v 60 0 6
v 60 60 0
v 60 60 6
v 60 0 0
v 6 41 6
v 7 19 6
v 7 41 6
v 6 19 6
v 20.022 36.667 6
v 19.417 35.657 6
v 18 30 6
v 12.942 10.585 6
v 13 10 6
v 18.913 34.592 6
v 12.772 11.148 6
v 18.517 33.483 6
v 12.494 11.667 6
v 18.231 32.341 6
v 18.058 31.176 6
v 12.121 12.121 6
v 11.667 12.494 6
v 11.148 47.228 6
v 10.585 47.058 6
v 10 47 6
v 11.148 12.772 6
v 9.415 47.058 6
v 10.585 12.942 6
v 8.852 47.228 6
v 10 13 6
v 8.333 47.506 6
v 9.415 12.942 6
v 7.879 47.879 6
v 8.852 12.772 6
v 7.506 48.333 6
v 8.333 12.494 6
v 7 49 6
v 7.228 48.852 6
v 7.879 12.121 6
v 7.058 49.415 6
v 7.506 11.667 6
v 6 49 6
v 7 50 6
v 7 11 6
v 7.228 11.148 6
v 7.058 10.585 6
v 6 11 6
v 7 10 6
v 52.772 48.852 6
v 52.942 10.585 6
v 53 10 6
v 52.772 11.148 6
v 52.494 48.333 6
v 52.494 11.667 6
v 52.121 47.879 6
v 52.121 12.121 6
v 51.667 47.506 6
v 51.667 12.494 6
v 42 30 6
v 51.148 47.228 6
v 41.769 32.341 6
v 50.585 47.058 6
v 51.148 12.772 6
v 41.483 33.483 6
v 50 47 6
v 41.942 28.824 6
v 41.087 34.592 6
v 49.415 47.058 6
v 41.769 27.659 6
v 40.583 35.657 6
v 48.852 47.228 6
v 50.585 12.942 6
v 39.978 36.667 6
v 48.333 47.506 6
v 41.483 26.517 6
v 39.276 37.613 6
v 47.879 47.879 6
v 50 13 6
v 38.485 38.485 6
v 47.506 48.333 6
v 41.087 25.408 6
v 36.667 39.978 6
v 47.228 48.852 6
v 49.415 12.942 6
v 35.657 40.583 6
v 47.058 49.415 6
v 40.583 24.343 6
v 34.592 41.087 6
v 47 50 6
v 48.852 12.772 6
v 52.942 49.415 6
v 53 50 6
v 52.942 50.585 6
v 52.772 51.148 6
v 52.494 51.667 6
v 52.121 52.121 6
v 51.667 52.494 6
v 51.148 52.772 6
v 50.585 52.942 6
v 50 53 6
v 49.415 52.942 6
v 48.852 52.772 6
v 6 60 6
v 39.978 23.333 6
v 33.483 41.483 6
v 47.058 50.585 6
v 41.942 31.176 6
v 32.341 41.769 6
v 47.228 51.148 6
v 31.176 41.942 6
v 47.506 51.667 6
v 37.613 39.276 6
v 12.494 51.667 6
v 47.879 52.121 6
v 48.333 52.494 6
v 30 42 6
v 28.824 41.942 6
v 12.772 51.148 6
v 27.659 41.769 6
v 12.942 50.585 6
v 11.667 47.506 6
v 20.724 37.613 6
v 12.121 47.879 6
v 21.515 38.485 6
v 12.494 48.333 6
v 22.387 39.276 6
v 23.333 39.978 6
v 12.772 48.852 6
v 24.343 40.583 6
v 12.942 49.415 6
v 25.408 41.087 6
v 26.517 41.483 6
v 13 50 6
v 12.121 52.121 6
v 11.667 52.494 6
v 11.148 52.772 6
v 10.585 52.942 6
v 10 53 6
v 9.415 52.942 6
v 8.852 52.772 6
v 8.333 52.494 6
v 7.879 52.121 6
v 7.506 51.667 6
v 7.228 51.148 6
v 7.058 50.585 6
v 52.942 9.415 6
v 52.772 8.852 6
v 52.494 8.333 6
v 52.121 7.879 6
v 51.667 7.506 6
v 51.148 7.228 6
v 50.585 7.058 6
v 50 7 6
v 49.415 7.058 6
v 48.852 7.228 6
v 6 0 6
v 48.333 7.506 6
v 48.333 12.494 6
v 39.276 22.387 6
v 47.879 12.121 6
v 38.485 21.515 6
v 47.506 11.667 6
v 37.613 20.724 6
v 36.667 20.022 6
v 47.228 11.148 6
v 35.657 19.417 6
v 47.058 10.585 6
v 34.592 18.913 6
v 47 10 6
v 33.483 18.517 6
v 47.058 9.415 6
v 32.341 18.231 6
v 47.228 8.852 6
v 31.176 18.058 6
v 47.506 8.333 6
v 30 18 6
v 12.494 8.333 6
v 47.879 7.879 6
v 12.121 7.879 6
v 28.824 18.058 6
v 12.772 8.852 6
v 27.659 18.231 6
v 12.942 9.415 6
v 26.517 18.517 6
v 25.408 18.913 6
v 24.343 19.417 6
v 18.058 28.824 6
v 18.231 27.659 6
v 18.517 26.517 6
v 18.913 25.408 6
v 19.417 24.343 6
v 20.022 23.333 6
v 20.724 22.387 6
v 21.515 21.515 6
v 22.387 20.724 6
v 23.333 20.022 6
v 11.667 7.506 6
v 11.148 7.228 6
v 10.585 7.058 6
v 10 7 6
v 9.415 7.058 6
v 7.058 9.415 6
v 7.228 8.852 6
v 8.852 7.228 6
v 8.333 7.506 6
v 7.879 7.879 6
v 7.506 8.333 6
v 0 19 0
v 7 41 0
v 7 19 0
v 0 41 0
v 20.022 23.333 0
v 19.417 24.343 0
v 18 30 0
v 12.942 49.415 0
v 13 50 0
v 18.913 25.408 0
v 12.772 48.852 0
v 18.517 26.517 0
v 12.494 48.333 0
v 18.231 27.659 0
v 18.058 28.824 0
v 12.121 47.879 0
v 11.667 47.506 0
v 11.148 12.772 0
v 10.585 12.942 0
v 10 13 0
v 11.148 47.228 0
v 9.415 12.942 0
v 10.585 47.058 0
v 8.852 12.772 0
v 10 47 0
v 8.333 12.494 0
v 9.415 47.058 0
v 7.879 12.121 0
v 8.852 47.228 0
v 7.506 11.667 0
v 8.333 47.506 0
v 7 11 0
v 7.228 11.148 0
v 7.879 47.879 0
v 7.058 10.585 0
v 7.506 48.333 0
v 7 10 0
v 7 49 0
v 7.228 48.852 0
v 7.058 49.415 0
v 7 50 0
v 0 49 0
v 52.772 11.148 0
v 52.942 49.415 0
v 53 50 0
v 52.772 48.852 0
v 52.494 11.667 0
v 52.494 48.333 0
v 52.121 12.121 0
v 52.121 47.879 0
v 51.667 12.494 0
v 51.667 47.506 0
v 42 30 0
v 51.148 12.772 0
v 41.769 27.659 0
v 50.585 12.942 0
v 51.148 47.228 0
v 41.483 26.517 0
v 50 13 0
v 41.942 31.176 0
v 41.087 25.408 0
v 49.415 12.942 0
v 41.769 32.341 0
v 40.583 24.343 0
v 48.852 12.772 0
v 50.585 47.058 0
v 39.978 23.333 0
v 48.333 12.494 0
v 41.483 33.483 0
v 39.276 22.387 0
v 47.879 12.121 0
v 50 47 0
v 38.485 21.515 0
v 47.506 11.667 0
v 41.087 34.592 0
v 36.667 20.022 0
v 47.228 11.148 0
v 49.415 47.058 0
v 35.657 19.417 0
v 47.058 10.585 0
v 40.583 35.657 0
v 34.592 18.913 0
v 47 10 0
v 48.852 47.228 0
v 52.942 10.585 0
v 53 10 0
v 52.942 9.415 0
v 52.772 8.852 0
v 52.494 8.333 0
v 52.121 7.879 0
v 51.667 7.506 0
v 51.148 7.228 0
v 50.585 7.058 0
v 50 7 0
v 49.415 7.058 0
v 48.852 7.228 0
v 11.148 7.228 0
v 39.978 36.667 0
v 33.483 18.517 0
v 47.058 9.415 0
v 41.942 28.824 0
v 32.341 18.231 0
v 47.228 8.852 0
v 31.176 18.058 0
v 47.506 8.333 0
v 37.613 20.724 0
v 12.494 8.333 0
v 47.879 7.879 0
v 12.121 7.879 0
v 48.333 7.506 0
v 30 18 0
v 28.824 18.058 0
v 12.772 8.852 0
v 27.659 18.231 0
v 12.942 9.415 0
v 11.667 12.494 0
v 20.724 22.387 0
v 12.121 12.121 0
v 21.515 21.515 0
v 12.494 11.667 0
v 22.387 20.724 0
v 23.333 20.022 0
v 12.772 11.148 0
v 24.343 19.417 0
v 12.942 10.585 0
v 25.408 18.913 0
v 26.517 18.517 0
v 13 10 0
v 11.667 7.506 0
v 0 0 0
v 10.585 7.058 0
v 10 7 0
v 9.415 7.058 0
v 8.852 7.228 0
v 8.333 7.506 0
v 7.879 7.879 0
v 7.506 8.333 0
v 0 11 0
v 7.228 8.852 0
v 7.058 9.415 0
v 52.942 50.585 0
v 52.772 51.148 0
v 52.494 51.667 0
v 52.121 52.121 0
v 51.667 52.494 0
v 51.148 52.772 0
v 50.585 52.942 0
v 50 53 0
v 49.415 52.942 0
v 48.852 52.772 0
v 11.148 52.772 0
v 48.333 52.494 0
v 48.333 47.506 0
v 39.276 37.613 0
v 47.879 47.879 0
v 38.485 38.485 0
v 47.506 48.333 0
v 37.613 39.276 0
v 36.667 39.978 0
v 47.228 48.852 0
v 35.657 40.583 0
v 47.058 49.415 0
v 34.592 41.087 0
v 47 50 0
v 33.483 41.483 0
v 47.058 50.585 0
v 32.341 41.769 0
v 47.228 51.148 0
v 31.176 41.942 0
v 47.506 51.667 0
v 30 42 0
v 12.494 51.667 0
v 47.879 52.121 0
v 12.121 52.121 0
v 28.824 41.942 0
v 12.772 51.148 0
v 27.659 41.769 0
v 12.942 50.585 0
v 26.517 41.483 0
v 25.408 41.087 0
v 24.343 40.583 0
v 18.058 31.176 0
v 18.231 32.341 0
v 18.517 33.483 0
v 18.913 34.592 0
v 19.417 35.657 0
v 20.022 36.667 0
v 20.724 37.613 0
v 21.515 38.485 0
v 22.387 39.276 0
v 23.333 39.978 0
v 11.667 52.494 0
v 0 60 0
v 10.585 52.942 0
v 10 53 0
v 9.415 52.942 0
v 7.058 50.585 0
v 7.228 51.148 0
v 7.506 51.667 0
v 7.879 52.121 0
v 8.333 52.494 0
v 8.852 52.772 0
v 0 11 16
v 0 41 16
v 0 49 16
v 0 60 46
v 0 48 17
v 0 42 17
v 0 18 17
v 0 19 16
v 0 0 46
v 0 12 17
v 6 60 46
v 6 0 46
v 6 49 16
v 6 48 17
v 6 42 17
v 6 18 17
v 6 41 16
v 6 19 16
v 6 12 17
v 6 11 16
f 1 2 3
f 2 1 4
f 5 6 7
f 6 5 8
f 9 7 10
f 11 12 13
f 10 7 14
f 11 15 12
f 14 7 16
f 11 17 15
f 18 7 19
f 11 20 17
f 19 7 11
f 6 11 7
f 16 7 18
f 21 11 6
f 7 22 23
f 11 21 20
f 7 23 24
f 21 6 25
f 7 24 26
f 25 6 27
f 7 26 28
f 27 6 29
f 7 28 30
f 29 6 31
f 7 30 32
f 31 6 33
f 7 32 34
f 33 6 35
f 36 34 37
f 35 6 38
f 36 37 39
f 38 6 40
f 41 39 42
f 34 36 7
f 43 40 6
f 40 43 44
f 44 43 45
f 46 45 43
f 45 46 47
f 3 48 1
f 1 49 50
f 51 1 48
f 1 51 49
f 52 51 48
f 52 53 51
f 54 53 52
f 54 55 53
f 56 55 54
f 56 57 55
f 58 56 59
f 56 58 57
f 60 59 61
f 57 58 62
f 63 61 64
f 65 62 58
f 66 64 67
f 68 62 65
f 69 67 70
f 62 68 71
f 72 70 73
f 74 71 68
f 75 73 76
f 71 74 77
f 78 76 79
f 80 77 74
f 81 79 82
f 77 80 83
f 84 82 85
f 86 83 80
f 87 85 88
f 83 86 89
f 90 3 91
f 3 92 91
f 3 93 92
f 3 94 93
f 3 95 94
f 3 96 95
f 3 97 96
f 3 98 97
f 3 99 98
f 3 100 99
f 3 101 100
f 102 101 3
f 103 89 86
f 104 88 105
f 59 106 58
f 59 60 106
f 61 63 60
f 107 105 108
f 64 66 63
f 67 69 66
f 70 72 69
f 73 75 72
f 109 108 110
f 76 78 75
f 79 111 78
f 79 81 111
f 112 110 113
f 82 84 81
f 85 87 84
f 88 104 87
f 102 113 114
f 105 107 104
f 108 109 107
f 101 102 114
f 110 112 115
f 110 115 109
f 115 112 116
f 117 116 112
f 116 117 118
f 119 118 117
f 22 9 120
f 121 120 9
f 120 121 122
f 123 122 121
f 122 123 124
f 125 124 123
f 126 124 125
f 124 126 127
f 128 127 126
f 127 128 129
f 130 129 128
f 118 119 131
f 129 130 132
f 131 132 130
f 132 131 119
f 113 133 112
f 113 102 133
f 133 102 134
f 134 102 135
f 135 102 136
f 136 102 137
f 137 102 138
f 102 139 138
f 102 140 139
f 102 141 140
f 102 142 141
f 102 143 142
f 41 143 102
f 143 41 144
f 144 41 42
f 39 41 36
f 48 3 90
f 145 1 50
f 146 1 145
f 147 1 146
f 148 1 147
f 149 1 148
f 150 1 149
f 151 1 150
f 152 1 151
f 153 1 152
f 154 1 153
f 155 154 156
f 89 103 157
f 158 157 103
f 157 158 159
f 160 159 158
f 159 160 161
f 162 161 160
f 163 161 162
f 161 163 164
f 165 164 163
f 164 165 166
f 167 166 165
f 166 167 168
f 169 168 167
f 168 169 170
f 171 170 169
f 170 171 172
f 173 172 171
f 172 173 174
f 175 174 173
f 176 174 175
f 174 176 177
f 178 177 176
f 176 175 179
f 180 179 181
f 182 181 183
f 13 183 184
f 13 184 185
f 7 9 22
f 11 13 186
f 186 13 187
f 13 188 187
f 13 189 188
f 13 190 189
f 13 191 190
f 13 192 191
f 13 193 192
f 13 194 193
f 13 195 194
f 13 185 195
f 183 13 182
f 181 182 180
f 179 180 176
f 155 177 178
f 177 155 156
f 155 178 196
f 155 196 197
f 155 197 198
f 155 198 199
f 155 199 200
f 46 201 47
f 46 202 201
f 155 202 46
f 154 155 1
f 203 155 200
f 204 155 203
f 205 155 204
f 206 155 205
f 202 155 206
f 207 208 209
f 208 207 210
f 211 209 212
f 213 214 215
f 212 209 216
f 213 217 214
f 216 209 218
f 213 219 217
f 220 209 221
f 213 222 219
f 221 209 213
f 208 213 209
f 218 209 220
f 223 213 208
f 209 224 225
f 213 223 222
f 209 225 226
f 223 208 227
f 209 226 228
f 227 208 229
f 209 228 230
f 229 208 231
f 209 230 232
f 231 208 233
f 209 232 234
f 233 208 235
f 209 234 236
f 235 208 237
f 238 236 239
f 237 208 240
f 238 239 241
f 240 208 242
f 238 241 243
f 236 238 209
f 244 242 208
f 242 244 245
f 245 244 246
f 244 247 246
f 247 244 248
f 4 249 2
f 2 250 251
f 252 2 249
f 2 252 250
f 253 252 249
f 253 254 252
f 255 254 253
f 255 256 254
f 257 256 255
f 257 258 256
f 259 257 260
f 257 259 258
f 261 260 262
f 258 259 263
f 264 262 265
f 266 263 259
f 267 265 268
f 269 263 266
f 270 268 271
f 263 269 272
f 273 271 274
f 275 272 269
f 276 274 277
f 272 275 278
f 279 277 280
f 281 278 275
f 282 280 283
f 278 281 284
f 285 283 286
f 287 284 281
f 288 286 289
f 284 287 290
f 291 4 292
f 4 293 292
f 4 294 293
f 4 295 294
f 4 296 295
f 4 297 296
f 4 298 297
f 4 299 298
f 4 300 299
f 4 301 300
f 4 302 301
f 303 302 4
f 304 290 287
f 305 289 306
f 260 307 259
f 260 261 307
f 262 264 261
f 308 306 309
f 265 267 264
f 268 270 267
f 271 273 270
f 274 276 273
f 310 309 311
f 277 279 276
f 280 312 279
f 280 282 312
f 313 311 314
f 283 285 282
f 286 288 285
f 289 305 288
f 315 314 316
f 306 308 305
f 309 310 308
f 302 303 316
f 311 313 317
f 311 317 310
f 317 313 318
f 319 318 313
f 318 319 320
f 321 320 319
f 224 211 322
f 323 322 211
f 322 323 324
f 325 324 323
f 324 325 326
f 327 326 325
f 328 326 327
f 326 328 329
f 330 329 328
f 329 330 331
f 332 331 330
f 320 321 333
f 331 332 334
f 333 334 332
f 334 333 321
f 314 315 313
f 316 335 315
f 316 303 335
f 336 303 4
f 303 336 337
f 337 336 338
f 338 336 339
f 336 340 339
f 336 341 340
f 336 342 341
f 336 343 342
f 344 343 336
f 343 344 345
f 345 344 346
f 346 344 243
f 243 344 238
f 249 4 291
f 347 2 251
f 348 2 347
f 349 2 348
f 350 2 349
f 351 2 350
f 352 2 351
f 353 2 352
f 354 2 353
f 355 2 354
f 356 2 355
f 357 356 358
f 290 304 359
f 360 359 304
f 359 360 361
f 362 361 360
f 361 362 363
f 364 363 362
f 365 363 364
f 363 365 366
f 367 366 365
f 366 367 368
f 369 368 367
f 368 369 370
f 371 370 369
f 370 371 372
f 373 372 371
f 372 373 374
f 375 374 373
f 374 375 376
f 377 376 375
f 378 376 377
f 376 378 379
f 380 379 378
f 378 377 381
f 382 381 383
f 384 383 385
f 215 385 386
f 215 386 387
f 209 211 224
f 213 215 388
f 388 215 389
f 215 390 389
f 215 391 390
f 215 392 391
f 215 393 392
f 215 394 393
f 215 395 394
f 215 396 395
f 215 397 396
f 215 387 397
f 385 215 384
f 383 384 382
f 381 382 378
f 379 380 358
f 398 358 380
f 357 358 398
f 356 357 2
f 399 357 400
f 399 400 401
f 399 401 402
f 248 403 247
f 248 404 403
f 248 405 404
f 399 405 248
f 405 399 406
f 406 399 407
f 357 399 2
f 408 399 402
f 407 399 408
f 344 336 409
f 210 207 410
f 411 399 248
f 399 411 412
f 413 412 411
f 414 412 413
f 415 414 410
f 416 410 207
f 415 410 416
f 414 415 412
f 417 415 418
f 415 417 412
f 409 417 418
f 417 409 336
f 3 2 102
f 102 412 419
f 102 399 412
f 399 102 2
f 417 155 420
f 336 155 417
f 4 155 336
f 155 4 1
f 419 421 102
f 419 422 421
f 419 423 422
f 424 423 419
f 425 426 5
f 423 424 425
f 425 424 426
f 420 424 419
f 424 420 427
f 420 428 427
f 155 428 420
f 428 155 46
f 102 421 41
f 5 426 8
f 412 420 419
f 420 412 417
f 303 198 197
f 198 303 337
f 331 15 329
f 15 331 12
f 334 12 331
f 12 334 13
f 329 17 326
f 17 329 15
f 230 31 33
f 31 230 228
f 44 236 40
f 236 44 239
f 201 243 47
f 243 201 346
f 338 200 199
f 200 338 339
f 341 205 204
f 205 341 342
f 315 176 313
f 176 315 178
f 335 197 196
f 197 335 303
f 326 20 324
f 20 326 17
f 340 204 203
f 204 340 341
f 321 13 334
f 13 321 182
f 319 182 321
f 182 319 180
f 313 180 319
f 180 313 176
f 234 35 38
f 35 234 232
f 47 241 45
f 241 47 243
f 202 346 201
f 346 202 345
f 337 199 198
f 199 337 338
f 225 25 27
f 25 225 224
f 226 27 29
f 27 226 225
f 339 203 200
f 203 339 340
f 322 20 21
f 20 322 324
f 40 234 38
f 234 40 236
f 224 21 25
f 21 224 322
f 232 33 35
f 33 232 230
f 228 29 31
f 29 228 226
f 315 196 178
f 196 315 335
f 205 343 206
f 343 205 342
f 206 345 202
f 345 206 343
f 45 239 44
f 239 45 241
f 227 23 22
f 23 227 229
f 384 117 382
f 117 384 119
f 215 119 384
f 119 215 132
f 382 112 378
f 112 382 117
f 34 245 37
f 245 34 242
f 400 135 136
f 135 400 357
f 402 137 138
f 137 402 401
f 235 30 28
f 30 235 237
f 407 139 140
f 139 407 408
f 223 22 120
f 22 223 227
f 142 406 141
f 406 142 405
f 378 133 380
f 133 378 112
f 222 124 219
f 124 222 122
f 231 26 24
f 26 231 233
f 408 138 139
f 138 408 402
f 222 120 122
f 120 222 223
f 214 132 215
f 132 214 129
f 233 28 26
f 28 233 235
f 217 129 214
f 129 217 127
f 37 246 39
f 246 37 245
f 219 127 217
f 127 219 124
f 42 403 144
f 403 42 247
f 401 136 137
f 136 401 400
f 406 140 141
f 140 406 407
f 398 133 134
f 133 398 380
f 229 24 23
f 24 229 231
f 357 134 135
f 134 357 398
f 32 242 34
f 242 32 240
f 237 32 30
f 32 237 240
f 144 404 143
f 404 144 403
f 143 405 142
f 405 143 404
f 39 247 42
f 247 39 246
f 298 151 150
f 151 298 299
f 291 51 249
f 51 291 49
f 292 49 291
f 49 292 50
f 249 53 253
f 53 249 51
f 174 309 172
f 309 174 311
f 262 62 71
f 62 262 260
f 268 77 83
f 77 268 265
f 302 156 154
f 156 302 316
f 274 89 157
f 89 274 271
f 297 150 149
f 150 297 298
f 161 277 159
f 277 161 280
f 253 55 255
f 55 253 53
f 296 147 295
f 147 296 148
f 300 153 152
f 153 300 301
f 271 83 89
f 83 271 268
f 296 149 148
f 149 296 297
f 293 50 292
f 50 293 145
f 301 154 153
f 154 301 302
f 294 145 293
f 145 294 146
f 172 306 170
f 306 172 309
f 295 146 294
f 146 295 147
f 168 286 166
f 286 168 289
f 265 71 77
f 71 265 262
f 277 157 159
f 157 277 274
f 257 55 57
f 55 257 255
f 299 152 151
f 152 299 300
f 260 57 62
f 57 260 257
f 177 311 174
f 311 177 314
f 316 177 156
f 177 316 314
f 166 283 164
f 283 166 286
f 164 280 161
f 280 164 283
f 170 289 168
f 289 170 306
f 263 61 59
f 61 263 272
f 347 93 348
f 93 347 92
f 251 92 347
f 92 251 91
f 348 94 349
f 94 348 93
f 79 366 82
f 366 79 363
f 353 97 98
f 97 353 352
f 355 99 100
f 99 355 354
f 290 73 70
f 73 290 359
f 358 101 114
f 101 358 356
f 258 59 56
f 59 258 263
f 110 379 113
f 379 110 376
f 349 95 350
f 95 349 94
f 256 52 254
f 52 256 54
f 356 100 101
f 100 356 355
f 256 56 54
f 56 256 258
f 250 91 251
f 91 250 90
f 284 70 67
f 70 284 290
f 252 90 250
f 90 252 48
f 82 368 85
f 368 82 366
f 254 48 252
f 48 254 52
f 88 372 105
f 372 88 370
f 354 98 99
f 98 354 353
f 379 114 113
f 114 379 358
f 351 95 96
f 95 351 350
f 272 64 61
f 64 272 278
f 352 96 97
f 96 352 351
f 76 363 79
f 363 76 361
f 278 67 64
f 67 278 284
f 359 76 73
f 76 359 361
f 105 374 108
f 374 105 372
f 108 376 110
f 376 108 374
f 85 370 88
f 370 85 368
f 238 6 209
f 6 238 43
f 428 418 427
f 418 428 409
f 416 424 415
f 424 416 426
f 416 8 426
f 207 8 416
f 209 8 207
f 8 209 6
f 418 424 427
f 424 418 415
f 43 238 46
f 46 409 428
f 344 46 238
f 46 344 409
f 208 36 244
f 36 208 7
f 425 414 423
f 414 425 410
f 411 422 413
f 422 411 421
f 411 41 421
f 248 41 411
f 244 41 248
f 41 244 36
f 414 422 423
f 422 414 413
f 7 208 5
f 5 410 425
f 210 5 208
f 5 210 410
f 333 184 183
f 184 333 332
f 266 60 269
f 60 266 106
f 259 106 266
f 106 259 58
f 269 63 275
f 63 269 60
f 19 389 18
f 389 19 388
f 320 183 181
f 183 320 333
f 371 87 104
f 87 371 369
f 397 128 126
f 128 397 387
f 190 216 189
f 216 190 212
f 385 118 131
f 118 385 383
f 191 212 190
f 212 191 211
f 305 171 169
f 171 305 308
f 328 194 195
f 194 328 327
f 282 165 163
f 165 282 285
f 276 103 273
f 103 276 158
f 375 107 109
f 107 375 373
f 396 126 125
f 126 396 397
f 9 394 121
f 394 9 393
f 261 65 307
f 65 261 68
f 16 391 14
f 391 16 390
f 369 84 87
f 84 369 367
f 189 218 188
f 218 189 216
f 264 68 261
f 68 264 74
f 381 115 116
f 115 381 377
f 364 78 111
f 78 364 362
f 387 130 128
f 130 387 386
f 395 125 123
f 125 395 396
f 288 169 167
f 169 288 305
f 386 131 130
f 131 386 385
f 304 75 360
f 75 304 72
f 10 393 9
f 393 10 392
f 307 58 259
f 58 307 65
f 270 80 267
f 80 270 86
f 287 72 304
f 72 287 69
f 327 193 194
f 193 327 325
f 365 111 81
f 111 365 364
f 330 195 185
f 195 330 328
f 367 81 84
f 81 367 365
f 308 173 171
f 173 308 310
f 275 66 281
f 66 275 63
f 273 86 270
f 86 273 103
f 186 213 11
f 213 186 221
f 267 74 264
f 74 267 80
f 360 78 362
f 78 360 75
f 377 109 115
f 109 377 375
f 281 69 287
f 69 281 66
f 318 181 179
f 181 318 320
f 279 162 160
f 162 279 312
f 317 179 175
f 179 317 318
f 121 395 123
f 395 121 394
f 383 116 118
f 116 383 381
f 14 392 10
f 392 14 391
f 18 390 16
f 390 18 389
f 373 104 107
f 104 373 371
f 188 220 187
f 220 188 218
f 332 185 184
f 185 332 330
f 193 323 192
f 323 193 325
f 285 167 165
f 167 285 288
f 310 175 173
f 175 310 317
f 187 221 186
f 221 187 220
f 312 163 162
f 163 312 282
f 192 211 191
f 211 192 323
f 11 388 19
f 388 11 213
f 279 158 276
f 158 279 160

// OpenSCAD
// Parameters
base_length = 60;
base_width = 60;
base_thickness = 6;
vertical_height = 40;
hole_radius = 12;
corner_hole_radius = 3;
slot_width = 6;
slot_height = 20;
slot_offset_x = 15;
slot_spacing = 30;

// Base Plate
difference() {
    union() {
        // Horizontal base
        cube([base_length, base_width, base_thickness]);

        // Vertical plate
        translate([0, 0, base_thickness])
            cube([base_thickness, base_width, vertical_height]);
    }

    // Central hole
    translate([base_length/2, base_width/2, -1])
        cylinder(h = base_thickness + 2, r = hole_radius, $fn=64);

    // Corner holes
    for (x = [10, base_length - 10])
        for (y = [10, base_width - 10])
            translate([x, y, -1])
                cylinder(h = base_thickness + 2, r = corner_hole_radius, $fn=32);

    // Vertical slots
    for (y = [base_width/2 - slot_spacing/2, base_width/2 + slot_spacing/2])
        translate([-1, y - slot_width/2, base_thickness + (vertical_height - slot_height)/2])
            rotate([0, 90, 0])
                linear_extrude(height = base_thickness + 2)
                    offset(r = 1)
                        square([slot_height, slot_width], center = false);
}
